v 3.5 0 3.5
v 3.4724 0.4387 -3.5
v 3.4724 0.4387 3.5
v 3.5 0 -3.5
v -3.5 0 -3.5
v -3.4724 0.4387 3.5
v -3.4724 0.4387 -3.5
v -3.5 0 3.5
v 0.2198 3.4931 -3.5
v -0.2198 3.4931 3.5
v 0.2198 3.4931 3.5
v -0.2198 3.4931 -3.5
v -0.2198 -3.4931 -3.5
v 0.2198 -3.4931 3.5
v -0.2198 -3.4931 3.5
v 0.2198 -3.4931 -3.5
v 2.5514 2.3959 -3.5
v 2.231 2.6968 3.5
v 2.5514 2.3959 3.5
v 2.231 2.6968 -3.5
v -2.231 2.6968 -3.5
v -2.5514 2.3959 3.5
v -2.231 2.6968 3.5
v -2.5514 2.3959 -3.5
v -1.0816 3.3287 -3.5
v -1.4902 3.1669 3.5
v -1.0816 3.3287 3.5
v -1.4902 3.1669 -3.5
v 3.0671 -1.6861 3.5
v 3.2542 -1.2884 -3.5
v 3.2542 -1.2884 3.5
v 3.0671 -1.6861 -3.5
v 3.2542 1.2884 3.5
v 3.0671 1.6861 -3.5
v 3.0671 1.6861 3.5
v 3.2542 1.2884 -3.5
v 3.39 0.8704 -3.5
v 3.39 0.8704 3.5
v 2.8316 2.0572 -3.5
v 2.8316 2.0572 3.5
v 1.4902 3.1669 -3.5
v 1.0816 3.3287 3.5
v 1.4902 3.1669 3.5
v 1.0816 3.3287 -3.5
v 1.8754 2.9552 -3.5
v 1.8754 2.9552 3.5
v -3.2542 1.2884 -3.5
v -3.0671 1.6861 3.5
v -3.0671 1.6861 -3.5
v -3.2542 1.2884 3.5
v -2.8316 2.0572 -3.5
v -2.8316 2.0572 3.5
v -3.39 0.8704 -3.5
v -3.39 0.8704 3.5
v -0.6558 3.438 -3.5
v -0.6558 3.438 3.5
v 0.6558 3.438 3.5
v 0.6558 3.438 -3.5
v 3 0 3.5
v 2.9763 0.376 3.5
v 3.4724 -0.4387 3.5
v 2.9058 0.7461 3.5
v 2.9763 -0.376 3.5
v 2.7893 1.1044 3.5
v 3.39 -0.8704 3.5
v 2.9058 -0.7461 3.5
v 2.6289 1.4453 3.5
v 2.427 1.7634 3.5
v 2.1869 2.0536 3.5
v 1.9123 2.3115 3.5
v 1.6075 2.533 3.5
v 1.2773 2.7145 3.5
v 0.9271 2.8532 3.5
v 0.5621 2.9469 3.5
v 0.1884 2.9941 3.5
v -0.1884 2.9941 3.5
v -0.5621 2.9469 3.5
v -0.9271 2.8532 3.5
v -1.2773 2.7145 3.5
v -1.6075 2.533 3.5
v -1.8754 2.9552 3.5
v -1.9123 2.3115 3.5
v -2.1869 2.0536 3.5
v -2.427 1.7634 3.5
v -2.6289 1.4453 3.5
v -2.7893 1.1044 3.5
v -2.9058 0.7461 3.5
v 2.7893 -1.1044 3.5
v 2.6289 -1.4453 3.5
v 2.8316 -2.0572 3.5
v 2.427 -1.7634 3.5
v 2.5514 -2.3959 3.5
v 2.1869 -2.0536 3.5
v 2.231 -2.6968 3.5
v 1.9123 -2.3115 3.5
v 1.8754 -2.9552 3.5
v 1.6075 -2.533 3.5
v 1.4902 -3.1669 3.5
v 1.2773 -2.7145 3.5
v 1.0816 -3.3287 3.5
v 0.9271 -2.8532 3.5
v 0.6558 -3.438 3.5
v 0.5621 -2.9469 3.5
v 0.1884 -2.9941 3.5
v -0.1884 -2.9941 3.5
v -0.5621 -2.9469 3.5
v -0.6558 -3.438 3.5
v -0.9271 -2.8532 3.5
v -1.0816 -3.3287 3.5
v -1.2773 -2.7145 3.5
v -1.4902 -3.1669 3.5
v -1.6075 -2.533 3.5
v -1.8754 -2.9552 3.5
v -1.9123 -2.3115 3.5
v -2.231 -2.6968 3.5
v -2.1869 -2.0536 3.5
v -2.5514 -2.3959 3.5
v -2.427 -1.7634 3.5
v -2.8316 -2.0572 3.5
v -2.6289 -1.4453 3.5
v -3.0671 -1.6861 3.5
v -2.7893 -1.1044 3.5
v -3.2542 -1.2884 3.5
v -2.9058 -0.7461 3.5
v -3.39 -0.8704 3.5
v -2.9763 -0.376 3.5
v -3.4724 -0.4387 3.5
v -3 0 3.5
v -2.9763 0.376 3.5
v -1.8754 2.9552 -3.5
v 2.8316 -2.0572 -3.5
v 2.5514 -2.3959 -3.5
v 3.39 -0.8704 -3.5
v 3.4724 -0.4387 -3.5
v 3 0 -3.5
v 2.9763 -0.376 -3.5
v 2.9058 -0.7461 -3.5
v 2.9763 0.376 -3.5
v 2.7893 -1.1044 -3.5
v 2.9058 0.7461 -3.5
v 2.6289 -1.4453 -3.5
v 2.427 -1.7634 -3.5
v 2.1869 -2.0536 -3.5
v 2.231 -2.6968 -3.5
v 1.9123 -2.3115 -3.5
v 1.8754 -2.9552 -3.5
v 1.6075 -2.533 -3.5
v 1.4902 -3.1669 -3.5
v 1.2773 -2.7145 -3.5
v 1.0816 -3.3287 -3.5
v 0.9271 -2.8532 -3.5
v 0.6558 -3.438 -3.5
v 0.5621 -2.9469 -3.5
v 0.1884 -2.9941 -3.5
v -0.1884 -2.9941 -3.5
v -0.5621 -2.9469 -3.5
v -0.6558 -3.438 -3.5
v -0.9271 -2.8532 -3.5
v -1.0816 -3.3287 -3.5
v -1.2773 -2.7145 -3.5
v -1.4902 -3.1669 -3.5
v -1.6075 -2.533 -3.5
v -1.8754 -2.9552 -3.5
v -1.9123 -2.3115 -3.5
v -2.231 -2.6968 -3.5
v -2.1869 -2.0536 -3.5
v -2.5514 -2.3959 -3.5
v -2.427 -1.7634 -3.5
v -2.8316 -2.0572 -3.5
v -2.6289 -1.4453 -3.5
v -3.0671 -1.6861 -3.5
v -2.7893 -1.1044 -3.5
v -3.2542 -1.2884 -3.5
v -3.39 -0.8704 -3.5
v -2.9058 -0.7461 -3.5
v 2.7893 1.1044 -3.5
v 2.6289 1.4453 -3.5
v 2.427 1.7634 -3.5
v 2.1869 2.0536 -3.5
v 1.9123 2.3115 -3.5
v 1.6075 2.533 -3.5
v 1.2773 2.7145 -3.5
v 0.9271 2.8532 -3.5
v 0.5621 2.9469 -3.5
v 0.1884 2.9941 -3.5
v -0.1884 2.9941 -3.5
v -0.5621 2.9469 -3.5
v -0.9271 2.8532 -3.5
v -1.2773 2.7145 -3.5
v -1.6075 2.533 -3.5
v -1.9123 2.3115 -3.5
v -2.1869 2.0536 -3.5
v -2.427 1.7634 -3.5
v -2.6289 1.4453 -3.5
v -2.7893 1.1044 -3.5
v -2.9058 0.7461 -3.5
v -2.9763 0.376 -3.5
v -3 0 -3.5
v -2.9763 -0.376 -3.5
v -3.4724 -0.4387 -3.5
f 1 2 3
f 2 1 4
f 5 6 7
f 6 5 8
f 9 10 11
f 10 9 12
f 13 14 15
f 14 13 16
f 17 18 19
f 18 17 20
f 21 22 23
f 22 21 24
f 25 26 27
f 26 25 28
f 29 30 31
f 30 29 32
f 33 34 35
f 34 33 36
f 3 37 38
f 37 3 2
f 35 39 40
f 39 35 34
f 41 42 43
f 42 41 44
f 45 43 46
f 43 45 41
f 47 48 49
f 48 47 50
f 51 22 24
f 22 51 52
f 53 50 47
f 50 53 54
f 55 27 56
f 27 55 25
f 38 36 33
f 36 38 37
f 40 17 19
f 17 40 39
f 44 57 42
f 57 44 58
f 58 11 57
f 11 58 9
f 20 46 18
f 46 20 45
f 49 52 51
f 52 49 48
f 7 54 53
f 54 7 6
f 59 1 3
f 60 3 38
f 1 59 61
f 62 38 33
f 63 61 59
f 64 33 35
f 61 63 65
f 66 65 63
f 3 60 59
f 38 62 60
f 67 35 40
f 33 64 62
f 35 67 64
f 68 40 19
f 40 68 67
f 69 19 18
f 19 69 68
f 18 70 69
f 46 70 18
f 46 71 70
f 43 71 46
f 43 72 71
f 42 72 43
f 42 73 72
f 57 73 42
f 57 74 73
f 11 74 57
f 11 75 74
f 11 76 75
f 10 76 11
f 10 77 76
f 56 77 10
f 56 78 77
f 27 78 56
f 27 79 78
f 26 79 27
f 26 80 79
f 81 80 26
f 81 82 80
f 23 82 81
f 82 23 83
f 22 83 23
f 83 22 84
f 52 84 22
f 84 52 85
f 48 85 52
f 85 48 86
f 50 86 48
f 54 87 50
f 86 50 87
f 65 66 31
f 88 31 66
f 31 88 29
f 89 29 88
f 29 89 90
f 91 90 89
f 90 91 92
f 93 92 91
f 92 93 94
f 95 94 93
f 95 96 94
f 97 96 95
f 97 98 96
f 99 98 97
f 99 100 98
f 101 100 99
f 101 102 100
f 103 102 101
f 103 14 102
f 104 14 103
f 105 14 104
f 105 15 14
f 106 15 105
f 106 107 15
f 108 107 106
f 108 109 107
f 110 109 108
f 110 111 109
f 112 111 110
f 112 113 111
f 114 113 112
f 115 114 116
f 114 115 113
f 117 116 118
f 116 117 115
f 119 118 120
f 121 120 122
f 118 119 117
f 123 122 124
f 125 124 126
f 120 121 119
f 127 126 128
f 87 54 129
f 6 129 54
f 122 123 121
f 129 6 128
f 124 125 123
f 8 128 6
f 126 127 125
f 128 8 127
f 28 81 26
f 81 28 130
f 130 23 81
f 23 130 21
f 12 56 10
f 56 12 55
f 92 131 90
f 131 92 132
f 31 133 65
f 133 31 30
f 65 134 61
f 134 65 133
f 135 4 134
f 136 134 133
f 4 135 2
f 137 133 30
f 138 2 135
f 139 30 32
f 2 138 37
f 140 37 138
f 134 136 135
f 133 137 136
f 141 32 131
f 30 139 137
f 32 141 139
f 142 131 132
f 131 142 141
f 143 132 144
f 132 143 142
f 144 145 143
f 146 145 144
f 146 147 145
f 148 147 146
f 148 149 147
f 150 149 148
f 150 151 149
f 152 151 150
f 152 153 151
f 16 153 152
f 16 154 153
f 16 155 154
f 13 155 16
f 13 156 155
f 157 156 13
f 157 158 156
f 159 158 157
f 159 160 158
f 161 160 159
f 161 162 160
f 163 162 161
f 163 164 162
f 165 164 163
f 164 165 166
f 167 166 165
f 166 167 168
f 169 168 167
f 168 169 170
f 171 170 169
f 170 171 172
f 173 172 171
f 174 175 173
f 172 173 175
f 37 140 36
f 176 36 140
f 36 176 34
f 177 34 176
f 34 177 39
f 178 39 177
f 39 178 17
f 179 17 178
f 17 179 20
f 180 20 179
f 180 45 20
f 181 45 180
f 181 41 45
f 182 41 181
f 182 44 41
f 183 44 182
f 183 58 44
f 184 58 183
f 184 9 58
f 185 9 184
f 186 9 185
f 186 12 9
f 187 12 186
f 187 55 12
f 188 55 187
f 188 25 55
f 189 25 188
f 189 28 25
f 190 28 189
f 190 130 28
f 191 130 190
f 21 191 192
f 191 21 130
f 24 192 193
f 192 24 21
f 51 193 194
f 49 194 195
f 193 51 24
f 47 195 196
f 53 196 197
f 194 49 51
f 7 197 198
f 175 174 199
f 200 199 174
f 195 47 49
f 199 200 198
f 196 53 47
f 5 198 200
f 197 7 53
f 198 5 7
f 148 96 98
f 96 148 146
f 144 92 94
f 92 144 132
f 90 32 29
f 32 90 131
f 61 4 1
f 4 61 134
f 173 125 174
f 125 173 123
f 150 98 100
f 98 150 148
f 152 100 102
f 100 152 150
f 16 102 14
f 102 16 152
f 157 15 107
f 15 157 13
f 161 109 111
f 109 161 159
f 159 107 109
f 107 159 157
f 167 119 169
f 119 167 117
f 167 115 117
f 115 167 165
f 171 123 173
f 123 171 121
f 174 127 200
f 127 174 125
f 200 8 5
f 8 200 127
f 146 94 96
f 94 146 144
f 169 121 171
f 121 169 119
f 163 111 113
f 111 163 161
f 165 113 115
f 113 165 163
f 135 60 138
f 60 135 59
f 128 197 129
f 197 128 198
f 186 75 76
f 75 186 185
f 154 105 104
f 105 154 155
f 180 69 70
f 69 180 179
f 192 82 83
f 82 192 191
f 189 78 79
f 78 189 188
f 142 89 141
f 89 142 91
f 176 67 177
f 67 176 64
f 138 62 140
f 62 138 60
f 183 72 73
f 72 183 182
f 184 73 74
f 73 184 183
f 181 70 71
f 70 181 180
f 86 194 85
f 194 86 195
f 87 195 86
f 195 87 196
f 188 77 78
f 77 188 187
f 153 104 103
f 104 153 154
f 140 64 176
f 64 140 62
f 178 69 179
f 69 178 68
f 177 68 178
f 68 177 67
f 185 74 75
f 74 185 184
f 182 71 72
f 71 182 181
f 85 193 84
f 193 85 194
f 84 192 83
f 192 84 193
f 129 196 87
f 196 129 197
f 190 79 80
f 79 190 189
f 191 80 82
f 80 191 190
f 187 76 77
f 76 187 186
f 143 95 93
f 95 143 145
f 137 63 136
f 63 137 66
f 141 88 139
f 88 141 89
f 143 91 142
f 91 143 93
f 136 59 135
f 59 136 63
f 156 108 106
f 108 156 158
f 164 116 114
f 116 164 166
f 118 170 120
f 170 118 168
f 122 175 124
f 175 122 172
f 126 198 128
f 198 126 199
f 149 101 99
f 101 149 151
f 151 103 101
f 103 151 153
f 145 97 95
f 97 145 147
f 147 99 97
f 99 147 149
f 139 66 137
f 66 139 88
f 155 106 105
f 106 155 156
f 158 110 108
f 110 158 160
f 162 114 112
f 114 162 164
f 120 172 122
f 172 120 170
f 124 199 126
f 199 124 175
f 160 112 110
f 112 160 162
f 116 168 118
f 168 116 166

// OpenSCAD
$fn = 50;


difference() {
	union() {
		translate(v = [0, 0, -3.5000000000]) {
			cylinder(h = 7, r = 3.5000000000);
		}
	}
	union() {
		translate(v = [0, 0, -100.0000000000]) {
			cylinder(h = 200, r = 3);
		}
	}
}
